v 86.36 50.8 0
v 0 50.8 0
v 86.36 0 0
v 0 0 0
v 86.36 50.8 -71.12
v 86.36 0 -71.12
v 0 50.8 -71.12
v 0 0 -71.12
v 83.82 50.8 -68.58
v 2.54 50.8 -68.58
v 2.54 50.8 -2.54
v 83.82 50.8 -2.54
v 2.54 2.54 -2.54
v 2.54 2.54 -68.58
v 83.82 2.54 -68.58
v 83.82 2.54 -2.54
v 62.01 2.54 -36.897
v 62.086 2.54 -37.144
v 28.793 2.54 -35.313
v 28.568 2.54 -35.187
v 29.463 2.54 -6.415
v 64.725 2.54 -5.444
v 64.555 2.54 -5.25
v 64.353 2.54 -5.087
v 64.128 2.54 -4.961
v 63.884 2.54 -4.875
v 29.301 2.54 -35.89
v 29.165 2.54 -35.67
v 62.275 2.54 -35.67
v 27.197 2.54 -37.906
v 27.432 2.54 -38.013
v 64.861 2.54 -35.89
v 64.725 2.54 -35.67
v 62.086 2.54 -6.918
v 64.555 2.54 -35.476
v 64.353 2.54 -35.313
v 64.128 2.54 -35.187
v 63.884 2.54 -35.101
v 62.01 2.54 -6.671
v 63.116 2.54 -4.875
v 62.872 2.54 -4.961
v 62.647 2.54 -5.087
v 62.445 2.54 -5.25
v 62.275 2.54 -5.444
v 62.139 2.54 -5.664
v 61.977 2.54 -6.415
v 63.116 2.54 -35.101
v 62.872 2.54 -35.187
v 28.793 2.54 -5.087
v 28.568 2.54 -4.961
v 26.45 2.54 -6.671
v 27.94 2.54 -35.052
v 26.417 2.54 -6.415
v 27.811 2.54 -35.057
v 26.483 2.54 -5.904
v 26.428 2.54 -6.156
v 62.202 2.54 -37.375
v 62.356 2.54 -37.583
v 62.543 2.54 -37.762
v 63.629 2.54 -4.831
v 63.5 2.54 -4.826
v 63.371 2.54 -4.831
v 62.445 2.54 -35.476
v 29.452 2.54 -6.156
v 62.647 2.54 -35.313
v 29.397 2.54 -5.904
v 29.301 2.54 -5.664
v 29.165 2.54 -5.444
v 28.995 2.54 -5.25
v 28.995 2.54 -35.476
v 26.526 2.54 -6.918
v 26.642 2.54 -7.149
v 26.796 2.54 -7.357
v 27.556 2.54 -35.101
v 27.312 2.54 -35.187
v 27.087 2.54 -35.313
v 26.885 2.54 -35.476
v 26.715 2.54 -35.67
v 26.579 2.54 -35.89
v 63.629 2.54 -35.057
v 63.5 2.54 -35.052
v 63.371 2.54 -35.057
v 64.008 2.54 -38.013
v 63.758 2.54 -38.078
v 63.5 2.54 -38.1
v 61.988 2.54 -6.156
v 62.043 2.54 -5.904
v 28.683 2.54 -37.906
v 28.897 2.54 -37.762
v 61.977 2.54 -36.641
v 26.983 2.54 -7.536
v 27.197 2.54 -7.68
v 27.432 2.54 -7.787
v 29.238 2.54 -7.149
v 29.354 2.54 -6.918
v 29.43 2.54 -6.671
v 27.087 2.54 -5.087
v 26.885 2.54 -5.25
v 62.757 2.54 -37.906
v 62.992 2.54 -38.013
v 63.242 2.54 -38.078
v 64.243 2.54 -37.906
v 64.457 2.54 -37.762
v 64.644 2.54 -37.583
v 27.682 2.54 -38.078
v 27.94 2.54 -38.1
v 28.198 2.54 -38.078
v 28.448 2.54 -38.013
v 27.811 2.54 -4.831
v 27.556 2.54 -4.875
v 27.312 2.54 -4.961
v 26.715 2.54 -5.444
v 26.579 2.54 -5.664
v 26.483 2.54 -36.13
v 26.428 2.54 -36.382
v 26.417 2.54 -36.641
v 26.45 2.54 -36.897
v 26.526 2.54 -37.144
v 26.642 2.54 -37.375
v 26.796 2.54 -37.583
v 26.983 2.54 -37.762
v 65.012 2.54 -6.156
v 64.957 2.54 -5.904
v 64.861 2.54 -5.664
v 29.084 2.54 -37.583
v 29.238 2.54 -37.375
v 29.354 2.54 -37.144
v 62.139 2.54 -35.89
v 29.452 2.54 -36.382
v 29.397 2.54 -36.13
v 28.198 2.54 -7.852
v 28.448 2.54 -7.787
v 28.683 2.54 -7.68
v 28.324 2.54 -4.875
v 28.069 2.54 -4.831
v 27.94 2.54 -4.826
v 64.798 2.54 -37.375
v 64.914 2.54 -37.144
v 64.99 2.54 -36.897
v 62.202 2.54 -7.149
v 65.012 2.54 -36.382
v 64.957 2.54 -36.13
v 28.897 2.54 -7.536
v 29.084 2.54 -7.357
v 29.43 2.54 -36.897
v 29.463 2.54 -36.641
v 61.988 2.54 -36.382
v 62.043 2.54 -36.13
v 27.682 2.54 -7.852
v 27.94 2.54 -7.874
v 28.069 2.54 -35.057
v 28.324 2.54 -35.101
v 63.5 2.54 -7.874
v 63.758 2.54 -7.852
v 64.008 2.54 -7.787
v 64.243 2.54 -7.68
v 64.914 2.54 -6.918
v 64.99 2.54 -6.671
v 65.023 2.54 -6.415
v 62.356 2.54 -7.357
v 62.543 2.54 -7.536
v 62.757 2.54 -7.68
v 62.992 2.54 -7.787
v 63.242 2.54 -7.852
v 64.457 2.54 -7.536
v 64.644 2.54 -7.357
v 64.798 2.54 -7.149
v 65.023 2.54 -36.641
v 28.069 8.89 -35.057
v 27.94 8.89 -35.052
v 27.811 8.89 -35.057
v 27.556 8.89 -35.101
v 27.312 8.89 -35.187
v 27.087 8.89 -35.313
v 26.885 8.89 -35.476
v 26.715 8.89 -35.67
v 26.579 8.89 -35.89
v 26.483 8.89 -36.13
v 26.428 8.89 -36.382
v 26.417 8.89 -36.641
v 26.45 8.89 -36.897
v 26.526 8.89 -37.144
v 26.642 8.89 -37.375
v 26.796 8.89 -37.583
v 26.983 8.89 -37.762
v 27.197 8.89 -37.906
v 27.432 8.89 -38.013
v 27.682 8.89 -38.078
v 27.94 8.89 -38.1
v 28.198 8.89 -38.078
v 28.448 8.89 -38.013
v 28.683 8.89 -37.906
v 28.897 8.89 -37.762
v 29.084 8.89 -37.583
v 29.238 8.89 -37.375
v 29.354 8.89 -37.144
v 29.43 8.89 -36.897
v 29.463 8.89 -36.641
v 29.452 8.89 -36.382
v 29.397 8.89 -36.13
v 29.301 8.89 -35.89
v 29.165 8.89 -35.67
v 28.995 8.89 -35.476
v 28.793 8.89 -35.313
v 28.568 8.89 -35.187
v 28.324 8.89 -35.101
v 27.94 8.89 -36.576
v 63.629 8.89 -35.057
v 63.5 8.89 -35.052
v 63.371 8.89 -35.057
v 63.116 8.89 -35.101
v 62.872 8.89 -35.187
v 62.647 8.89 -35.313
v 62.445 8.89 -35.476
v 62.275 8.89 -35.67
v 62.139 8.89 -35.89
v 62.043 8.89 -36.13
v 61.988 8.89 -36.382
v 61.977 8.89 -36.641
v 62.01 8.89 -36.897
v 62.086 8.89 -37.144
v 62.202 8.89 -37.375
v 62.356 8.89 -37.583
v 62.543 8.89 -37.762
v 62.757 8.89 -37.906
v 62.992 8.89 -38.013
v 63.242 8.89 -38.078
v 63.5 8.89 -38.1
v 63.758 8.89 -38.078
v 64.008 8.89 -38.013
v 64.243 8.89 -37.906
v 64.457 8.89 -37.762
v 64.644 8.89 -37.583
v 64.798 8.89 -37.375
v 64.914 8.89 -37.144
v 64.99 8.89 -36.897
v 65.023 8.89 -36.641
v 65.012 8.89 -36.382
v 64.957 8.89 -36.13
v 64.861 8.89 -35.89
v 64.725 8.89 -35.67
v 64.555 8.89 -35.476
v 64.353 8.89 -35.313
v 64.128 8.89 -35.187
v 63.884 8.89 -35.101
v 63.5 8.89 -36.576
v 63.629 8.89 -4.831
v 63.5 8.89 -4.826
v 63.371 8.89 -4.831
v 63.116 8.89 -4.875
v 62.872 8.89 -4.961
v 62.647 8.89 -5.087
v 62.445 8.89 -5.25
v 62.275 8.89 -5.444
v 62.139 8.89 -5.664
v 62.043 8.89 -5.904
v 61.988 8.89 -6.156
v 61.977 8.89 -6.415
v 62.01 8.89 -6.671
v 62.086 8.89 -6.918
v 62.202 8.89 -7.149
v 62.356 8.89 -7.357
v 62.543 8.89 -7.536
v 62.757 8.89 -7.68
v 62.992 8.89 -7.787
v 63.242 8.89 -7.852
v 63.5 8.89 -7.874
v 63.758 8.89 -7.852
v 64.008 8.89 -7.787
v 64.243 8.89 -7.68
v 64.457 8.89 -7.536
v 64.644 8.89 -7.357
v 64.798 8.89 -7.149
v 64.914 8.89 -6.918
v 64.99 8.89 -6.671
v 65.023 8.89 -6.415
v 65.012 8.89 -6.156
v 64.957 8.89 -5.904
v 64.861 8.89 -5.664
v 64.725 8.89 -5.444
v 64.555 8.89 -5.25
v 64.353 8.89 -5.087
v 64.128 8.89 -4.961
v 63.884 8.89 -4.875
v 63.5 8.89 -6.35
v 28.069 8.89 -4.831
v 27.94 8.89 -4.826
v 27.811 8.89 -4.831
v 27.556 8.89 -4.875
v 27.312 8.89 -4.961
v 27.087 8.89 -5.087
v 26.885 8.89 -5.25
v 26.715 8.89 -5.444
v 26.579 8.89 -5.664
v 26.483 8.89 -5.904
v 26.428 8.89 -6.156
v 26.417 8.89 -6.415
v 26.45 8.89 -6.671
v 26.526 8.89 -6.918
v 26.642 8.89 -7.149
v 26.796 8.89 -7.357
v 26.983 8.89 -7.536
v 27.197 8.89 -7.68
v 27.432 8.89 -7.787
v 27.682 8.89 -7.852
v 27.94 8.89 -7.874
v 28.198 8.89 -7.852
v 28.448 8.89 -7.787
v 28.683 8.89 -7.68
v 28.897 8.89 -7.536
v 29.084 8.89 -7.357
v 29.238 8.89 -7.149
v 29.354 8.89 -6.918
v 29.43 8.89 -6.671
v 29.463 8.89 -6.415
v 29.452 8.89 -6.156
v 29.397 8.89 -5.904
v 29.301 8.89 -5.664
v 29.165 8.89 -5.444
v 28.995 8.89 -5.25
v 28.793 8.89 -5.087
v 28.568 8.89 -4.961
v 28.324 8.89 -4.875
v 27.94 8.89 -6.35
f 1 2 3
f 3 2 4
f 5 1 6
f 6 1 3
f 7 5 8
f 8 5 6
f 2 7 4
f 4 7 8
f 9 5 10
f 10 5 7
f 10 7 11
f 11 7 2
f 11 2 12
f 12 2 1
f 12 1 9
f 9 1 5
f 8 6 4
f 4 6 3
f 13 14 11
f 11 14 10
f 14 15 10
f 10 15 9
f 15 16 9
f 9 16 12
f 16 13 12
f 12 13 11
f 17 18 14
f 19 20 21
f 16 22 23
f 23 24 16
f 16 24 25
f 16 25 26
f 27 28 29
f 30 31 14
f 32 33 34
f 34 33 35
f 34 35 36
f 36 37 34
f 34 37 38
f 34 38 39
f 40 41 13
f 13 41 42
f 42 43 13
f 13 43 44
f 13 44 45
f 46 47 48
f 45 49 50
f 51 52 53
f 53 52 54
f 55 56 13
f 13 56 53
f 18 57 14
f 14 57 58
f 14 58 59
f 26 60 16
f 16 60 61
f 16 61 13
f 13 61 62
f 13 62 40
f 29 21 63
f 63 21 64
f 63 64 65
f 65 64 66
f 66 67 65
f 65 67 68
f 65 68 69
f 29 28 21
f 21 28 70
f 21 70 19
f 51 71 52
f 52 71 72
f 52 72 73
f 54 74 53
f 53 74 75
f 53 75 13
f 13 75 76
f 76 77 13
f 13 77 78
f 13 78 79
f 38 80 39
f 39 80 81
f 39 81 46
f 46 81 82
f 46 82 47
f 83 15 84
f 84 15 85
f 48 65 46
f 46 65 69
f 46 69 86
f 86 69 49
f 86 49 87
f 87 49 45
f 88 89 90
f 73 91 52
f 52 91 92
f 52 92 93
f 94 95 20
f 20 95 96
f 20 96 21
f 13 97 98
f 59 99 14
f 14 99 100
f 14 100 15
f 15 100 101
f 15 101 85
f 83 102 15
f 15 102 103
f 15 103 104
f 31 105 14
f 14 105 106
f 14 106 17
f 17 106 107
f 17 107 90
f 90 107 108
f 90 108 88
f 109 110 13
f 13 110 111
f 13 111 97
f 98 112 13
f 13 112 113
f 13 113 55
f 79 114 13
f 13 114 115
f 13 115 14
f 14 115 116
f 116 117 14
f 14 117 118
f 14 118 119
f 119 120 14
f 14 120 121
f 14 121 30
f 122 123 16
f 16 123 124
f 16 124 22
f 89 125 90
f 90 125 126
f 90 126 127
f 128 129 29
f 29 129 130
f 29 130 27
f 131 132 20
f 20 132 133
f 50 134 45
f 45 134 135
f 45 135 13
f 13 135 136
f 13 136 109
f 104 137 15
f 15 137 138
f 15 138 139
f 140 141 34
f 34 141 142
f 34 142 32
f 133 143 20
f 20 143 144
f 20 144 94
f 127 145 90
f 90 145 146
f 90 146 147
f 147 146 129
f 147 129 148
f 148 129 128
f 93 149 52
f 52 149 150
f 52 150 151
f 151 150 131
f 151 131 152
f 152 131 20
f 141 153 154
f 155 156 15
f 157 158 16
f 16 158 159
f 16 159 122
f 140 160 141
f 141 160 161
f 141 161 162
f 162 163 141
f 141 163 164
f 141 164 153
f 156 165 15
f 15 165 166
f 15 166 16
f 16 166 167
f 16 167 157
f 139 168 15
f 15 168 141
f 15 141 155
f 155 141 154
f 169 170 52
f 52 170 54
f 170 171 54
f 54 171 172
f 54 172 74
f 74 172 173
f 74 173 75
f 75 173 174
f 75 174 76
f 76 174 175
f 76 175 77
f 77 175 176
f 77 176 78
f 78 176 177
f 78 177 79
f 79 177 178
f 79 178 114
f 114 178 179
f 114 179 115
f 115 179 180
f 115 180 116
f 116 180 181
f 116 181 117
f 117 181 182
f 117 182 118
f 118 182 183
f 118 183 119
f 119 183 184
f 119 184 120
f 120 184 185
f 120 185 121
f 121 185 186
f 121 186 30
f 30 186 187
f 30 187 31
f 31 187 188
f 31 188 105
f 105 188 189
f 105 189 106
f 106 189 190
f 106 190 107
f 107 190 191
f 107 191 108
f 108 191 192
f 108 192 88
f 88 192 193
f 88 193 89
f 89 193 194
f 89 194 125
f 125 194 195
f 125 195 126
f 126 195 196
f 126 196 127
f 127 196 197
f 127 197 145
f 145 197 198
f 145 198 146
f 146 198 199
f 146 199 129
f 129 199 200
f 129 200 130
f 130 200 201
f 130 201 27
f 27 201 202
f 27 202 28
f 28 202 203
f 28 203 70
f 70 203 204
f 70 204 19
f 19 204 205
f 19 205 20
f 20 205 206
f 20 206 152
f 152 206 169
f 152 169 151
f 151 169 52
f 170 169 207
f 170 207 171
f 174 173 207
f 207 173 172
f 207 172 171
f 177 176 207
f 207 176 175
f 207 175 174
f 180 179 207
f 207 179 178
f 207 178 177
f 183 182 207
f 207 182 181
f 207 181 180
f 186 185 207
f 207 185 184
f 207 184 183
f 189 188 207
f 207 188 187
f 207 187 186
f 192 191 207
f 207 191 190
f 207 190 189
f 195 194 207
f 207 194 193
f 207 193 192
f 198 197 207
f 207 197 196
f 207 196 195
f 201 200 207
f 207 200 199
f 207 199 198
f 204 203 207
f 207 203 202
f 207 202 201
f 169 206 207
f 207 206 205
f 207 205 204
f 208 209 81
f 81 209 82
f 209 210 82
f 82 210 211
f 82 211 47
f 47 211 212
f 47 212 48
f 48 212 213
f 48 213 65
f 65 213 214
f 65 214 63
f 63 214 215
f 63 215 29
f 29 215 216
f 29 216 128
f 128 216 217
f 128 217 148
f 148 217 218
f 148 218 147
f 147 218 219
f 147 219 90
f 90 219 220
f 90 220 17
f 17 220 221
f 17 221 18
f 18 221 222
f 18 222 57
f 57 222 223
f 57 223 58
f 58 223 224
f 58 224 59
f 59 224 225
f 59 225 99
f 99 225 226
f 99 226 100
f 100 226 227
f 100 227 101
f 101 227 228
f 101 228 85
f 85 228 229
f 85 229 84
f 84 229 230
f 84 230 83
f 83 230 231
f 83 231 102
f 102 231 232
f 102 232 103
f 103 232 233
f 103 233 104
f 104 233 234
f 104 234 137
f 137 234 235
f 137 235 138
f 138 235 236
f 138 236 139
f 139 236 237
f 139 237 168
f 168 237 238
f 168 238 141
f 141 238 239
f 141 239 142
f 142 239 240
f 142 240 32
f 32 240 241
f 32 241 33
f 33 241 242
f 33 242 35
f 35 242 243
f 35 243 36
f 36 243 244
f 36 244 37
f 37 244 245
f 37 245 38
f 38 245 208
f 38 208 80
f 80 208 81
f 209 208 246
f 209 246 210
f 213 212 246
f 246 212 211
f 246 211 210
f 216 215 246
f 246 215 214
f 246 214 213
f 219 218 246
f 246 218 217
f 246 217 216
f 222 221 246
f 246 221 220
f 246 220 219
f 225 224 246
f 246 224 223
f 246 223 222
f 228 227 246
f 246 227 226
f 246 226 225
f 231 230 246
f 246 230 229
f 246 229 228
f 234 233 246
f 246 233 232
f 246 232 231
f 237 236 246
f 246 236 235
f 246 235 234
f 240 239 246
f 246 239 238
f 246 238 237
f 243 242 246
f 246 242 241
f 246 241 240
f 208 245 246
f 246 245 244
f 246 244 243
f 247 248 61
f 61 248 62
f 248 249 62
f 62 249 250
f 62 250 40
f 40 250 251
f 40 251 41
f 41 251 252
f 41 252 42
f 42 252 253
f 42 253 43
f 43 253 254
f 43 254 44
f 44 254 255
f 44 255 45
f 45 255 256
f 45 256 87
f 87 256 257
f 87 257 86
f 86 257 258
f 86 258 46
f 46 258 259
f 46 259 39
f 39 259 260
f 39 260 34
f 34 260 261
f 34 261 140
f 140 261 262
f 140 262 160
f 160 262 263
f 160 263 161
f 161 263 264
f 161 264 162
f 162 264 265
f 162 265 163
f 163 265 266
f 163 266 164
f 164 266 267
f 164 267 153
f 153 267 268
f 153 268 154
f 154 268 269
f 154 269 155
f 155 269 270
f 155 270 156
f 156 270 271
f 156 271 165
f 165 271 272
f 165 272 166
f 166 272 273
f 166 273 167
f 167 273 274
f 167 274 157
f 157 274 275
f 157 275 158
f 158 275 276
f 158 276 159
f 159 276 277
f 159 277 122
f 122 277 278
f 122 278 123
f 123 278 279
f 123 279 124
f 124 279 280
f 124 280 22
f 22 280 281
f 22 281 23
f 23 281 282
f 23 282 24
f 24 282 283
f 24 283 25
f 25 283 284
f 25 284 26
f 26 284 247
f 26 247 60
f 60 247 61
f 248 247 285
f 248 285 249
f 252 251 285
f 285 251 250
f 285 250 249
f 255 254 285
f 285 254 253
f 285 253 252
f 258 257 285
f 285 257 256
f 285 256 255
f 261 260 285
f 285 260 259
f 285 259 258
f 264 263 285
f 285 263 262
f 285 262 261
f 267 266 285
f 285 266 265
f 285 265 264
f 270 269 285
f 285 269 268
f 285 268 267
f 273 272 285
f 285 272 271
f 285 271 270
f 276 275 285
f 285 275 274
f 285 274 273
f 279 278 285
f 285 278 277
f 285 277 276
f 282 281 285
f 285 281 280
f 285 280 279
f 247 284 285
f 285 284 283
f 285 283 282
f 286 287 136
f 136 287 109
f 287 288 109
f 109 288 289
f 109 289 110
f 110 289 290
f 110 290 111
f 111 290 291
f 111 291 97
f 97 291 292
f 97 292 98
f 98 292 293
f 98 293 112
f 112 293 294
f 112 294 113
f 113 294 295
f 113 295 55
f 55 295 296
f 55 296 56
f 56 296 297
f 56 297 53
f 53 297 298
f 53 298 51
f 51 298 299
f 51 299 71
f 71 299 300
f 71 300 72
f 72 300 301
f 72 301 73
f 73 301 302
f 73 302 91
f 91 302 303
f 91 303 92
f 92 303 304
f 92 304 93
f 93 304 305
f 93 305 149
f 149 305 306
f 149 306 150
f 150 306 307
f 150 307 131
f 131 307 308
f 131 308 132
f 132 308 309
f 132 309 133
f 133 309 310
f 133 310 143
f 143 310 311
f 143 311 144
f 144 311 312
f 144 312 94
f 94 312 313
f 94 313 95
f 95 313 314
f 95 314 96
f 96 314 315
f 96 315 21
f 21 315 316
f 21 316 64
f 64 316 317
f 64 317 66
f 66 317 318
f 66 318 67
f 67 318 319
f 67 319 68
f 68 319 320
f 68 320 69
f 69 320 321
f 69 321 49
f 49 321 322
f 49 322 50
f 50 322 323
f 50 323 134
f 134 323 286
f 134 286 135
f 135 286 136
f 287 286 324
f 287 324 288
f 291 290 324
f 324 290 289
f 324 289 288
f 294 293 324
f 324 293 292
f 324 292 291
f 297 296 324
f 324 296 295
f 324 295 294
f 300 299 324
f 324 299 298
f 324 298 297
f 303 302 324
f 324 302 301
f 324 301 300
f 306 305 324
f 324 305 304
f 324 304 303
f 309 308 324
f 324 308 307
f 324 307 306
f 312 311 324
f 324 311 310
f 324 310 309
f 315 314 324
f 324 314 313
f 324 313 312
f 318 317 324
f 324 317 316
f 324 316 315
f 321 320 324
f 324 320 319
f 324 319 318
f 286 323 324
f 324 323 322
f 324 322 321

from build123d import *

# Parameters (mm, degrees)
SKETCH1_W           = 86.36
SKETCH1_H           = 71.12
BOSS_EXTRUDE3_DEPTH = 50.8
SKETCH3_W           = 81.28
SKETCH3_H           = 66.04
CUT_EXTRUDE1_DEPTH  = 48.26
SKETCH4_R           = 1.524
BOSS_EXTRUDE7_DEPTH = 6.35


with BuildPart() as part:
    # Sketch1 → Boss-Extrude3 (new body)
    with BuildSketch(Plane(origin=(0, 0, 0), x_dir=(1, 0, 0), z_dir=(0, 1, 0))):
        with Locations((43.18, 35.56)):
            Rectangle(SKETCH1_W, SKETCH1_H)
    extrude(amount=BOSS_EXTRUDE3_DEPTH)

    # Sketch3 → Cut-Extrude1 (cut)
    with BuildSketch(Plane(origin=(0, 50.8, 0), x_dir=(1, 0, 0), z_dir=(0, 1, 0))):
        with Locations((43.18, 35.56)):
            Rectangle(SKETCH3_W, SKETCH3_H)
    extrude(amount=-CUT_EXTRUDE1_DEPTH, mode=Mode.SUBTRACT)

    # Sketch4 → Boss-Extrude7 (add)
    with BuildSketch(Plane(origin=(0, 2.54, 0), x_dir=(1, 0, 0), z_dir=(0, 1, 0))):
        with Locations(Location((27.94, 36.576, 0), (0, 0, 270))):
            Circle(SKETCH4_R)
        with Locations(Location((63.5, 36.576, 0), (0, 0, 270))):
            Circle(SKETCH4_R)
        with Locations(Location((63.5, 6.35, 0), (0, 0, 270))):
            Circle(SKETCH4_R)
        with Locations(Location((27.94, 6.35, 0), (0, 0, 270))):
            Circle(SKETCH4_R)
    extrude(amount=BOSS_EXTRUDE7_DEPTH)


solid = part.part
